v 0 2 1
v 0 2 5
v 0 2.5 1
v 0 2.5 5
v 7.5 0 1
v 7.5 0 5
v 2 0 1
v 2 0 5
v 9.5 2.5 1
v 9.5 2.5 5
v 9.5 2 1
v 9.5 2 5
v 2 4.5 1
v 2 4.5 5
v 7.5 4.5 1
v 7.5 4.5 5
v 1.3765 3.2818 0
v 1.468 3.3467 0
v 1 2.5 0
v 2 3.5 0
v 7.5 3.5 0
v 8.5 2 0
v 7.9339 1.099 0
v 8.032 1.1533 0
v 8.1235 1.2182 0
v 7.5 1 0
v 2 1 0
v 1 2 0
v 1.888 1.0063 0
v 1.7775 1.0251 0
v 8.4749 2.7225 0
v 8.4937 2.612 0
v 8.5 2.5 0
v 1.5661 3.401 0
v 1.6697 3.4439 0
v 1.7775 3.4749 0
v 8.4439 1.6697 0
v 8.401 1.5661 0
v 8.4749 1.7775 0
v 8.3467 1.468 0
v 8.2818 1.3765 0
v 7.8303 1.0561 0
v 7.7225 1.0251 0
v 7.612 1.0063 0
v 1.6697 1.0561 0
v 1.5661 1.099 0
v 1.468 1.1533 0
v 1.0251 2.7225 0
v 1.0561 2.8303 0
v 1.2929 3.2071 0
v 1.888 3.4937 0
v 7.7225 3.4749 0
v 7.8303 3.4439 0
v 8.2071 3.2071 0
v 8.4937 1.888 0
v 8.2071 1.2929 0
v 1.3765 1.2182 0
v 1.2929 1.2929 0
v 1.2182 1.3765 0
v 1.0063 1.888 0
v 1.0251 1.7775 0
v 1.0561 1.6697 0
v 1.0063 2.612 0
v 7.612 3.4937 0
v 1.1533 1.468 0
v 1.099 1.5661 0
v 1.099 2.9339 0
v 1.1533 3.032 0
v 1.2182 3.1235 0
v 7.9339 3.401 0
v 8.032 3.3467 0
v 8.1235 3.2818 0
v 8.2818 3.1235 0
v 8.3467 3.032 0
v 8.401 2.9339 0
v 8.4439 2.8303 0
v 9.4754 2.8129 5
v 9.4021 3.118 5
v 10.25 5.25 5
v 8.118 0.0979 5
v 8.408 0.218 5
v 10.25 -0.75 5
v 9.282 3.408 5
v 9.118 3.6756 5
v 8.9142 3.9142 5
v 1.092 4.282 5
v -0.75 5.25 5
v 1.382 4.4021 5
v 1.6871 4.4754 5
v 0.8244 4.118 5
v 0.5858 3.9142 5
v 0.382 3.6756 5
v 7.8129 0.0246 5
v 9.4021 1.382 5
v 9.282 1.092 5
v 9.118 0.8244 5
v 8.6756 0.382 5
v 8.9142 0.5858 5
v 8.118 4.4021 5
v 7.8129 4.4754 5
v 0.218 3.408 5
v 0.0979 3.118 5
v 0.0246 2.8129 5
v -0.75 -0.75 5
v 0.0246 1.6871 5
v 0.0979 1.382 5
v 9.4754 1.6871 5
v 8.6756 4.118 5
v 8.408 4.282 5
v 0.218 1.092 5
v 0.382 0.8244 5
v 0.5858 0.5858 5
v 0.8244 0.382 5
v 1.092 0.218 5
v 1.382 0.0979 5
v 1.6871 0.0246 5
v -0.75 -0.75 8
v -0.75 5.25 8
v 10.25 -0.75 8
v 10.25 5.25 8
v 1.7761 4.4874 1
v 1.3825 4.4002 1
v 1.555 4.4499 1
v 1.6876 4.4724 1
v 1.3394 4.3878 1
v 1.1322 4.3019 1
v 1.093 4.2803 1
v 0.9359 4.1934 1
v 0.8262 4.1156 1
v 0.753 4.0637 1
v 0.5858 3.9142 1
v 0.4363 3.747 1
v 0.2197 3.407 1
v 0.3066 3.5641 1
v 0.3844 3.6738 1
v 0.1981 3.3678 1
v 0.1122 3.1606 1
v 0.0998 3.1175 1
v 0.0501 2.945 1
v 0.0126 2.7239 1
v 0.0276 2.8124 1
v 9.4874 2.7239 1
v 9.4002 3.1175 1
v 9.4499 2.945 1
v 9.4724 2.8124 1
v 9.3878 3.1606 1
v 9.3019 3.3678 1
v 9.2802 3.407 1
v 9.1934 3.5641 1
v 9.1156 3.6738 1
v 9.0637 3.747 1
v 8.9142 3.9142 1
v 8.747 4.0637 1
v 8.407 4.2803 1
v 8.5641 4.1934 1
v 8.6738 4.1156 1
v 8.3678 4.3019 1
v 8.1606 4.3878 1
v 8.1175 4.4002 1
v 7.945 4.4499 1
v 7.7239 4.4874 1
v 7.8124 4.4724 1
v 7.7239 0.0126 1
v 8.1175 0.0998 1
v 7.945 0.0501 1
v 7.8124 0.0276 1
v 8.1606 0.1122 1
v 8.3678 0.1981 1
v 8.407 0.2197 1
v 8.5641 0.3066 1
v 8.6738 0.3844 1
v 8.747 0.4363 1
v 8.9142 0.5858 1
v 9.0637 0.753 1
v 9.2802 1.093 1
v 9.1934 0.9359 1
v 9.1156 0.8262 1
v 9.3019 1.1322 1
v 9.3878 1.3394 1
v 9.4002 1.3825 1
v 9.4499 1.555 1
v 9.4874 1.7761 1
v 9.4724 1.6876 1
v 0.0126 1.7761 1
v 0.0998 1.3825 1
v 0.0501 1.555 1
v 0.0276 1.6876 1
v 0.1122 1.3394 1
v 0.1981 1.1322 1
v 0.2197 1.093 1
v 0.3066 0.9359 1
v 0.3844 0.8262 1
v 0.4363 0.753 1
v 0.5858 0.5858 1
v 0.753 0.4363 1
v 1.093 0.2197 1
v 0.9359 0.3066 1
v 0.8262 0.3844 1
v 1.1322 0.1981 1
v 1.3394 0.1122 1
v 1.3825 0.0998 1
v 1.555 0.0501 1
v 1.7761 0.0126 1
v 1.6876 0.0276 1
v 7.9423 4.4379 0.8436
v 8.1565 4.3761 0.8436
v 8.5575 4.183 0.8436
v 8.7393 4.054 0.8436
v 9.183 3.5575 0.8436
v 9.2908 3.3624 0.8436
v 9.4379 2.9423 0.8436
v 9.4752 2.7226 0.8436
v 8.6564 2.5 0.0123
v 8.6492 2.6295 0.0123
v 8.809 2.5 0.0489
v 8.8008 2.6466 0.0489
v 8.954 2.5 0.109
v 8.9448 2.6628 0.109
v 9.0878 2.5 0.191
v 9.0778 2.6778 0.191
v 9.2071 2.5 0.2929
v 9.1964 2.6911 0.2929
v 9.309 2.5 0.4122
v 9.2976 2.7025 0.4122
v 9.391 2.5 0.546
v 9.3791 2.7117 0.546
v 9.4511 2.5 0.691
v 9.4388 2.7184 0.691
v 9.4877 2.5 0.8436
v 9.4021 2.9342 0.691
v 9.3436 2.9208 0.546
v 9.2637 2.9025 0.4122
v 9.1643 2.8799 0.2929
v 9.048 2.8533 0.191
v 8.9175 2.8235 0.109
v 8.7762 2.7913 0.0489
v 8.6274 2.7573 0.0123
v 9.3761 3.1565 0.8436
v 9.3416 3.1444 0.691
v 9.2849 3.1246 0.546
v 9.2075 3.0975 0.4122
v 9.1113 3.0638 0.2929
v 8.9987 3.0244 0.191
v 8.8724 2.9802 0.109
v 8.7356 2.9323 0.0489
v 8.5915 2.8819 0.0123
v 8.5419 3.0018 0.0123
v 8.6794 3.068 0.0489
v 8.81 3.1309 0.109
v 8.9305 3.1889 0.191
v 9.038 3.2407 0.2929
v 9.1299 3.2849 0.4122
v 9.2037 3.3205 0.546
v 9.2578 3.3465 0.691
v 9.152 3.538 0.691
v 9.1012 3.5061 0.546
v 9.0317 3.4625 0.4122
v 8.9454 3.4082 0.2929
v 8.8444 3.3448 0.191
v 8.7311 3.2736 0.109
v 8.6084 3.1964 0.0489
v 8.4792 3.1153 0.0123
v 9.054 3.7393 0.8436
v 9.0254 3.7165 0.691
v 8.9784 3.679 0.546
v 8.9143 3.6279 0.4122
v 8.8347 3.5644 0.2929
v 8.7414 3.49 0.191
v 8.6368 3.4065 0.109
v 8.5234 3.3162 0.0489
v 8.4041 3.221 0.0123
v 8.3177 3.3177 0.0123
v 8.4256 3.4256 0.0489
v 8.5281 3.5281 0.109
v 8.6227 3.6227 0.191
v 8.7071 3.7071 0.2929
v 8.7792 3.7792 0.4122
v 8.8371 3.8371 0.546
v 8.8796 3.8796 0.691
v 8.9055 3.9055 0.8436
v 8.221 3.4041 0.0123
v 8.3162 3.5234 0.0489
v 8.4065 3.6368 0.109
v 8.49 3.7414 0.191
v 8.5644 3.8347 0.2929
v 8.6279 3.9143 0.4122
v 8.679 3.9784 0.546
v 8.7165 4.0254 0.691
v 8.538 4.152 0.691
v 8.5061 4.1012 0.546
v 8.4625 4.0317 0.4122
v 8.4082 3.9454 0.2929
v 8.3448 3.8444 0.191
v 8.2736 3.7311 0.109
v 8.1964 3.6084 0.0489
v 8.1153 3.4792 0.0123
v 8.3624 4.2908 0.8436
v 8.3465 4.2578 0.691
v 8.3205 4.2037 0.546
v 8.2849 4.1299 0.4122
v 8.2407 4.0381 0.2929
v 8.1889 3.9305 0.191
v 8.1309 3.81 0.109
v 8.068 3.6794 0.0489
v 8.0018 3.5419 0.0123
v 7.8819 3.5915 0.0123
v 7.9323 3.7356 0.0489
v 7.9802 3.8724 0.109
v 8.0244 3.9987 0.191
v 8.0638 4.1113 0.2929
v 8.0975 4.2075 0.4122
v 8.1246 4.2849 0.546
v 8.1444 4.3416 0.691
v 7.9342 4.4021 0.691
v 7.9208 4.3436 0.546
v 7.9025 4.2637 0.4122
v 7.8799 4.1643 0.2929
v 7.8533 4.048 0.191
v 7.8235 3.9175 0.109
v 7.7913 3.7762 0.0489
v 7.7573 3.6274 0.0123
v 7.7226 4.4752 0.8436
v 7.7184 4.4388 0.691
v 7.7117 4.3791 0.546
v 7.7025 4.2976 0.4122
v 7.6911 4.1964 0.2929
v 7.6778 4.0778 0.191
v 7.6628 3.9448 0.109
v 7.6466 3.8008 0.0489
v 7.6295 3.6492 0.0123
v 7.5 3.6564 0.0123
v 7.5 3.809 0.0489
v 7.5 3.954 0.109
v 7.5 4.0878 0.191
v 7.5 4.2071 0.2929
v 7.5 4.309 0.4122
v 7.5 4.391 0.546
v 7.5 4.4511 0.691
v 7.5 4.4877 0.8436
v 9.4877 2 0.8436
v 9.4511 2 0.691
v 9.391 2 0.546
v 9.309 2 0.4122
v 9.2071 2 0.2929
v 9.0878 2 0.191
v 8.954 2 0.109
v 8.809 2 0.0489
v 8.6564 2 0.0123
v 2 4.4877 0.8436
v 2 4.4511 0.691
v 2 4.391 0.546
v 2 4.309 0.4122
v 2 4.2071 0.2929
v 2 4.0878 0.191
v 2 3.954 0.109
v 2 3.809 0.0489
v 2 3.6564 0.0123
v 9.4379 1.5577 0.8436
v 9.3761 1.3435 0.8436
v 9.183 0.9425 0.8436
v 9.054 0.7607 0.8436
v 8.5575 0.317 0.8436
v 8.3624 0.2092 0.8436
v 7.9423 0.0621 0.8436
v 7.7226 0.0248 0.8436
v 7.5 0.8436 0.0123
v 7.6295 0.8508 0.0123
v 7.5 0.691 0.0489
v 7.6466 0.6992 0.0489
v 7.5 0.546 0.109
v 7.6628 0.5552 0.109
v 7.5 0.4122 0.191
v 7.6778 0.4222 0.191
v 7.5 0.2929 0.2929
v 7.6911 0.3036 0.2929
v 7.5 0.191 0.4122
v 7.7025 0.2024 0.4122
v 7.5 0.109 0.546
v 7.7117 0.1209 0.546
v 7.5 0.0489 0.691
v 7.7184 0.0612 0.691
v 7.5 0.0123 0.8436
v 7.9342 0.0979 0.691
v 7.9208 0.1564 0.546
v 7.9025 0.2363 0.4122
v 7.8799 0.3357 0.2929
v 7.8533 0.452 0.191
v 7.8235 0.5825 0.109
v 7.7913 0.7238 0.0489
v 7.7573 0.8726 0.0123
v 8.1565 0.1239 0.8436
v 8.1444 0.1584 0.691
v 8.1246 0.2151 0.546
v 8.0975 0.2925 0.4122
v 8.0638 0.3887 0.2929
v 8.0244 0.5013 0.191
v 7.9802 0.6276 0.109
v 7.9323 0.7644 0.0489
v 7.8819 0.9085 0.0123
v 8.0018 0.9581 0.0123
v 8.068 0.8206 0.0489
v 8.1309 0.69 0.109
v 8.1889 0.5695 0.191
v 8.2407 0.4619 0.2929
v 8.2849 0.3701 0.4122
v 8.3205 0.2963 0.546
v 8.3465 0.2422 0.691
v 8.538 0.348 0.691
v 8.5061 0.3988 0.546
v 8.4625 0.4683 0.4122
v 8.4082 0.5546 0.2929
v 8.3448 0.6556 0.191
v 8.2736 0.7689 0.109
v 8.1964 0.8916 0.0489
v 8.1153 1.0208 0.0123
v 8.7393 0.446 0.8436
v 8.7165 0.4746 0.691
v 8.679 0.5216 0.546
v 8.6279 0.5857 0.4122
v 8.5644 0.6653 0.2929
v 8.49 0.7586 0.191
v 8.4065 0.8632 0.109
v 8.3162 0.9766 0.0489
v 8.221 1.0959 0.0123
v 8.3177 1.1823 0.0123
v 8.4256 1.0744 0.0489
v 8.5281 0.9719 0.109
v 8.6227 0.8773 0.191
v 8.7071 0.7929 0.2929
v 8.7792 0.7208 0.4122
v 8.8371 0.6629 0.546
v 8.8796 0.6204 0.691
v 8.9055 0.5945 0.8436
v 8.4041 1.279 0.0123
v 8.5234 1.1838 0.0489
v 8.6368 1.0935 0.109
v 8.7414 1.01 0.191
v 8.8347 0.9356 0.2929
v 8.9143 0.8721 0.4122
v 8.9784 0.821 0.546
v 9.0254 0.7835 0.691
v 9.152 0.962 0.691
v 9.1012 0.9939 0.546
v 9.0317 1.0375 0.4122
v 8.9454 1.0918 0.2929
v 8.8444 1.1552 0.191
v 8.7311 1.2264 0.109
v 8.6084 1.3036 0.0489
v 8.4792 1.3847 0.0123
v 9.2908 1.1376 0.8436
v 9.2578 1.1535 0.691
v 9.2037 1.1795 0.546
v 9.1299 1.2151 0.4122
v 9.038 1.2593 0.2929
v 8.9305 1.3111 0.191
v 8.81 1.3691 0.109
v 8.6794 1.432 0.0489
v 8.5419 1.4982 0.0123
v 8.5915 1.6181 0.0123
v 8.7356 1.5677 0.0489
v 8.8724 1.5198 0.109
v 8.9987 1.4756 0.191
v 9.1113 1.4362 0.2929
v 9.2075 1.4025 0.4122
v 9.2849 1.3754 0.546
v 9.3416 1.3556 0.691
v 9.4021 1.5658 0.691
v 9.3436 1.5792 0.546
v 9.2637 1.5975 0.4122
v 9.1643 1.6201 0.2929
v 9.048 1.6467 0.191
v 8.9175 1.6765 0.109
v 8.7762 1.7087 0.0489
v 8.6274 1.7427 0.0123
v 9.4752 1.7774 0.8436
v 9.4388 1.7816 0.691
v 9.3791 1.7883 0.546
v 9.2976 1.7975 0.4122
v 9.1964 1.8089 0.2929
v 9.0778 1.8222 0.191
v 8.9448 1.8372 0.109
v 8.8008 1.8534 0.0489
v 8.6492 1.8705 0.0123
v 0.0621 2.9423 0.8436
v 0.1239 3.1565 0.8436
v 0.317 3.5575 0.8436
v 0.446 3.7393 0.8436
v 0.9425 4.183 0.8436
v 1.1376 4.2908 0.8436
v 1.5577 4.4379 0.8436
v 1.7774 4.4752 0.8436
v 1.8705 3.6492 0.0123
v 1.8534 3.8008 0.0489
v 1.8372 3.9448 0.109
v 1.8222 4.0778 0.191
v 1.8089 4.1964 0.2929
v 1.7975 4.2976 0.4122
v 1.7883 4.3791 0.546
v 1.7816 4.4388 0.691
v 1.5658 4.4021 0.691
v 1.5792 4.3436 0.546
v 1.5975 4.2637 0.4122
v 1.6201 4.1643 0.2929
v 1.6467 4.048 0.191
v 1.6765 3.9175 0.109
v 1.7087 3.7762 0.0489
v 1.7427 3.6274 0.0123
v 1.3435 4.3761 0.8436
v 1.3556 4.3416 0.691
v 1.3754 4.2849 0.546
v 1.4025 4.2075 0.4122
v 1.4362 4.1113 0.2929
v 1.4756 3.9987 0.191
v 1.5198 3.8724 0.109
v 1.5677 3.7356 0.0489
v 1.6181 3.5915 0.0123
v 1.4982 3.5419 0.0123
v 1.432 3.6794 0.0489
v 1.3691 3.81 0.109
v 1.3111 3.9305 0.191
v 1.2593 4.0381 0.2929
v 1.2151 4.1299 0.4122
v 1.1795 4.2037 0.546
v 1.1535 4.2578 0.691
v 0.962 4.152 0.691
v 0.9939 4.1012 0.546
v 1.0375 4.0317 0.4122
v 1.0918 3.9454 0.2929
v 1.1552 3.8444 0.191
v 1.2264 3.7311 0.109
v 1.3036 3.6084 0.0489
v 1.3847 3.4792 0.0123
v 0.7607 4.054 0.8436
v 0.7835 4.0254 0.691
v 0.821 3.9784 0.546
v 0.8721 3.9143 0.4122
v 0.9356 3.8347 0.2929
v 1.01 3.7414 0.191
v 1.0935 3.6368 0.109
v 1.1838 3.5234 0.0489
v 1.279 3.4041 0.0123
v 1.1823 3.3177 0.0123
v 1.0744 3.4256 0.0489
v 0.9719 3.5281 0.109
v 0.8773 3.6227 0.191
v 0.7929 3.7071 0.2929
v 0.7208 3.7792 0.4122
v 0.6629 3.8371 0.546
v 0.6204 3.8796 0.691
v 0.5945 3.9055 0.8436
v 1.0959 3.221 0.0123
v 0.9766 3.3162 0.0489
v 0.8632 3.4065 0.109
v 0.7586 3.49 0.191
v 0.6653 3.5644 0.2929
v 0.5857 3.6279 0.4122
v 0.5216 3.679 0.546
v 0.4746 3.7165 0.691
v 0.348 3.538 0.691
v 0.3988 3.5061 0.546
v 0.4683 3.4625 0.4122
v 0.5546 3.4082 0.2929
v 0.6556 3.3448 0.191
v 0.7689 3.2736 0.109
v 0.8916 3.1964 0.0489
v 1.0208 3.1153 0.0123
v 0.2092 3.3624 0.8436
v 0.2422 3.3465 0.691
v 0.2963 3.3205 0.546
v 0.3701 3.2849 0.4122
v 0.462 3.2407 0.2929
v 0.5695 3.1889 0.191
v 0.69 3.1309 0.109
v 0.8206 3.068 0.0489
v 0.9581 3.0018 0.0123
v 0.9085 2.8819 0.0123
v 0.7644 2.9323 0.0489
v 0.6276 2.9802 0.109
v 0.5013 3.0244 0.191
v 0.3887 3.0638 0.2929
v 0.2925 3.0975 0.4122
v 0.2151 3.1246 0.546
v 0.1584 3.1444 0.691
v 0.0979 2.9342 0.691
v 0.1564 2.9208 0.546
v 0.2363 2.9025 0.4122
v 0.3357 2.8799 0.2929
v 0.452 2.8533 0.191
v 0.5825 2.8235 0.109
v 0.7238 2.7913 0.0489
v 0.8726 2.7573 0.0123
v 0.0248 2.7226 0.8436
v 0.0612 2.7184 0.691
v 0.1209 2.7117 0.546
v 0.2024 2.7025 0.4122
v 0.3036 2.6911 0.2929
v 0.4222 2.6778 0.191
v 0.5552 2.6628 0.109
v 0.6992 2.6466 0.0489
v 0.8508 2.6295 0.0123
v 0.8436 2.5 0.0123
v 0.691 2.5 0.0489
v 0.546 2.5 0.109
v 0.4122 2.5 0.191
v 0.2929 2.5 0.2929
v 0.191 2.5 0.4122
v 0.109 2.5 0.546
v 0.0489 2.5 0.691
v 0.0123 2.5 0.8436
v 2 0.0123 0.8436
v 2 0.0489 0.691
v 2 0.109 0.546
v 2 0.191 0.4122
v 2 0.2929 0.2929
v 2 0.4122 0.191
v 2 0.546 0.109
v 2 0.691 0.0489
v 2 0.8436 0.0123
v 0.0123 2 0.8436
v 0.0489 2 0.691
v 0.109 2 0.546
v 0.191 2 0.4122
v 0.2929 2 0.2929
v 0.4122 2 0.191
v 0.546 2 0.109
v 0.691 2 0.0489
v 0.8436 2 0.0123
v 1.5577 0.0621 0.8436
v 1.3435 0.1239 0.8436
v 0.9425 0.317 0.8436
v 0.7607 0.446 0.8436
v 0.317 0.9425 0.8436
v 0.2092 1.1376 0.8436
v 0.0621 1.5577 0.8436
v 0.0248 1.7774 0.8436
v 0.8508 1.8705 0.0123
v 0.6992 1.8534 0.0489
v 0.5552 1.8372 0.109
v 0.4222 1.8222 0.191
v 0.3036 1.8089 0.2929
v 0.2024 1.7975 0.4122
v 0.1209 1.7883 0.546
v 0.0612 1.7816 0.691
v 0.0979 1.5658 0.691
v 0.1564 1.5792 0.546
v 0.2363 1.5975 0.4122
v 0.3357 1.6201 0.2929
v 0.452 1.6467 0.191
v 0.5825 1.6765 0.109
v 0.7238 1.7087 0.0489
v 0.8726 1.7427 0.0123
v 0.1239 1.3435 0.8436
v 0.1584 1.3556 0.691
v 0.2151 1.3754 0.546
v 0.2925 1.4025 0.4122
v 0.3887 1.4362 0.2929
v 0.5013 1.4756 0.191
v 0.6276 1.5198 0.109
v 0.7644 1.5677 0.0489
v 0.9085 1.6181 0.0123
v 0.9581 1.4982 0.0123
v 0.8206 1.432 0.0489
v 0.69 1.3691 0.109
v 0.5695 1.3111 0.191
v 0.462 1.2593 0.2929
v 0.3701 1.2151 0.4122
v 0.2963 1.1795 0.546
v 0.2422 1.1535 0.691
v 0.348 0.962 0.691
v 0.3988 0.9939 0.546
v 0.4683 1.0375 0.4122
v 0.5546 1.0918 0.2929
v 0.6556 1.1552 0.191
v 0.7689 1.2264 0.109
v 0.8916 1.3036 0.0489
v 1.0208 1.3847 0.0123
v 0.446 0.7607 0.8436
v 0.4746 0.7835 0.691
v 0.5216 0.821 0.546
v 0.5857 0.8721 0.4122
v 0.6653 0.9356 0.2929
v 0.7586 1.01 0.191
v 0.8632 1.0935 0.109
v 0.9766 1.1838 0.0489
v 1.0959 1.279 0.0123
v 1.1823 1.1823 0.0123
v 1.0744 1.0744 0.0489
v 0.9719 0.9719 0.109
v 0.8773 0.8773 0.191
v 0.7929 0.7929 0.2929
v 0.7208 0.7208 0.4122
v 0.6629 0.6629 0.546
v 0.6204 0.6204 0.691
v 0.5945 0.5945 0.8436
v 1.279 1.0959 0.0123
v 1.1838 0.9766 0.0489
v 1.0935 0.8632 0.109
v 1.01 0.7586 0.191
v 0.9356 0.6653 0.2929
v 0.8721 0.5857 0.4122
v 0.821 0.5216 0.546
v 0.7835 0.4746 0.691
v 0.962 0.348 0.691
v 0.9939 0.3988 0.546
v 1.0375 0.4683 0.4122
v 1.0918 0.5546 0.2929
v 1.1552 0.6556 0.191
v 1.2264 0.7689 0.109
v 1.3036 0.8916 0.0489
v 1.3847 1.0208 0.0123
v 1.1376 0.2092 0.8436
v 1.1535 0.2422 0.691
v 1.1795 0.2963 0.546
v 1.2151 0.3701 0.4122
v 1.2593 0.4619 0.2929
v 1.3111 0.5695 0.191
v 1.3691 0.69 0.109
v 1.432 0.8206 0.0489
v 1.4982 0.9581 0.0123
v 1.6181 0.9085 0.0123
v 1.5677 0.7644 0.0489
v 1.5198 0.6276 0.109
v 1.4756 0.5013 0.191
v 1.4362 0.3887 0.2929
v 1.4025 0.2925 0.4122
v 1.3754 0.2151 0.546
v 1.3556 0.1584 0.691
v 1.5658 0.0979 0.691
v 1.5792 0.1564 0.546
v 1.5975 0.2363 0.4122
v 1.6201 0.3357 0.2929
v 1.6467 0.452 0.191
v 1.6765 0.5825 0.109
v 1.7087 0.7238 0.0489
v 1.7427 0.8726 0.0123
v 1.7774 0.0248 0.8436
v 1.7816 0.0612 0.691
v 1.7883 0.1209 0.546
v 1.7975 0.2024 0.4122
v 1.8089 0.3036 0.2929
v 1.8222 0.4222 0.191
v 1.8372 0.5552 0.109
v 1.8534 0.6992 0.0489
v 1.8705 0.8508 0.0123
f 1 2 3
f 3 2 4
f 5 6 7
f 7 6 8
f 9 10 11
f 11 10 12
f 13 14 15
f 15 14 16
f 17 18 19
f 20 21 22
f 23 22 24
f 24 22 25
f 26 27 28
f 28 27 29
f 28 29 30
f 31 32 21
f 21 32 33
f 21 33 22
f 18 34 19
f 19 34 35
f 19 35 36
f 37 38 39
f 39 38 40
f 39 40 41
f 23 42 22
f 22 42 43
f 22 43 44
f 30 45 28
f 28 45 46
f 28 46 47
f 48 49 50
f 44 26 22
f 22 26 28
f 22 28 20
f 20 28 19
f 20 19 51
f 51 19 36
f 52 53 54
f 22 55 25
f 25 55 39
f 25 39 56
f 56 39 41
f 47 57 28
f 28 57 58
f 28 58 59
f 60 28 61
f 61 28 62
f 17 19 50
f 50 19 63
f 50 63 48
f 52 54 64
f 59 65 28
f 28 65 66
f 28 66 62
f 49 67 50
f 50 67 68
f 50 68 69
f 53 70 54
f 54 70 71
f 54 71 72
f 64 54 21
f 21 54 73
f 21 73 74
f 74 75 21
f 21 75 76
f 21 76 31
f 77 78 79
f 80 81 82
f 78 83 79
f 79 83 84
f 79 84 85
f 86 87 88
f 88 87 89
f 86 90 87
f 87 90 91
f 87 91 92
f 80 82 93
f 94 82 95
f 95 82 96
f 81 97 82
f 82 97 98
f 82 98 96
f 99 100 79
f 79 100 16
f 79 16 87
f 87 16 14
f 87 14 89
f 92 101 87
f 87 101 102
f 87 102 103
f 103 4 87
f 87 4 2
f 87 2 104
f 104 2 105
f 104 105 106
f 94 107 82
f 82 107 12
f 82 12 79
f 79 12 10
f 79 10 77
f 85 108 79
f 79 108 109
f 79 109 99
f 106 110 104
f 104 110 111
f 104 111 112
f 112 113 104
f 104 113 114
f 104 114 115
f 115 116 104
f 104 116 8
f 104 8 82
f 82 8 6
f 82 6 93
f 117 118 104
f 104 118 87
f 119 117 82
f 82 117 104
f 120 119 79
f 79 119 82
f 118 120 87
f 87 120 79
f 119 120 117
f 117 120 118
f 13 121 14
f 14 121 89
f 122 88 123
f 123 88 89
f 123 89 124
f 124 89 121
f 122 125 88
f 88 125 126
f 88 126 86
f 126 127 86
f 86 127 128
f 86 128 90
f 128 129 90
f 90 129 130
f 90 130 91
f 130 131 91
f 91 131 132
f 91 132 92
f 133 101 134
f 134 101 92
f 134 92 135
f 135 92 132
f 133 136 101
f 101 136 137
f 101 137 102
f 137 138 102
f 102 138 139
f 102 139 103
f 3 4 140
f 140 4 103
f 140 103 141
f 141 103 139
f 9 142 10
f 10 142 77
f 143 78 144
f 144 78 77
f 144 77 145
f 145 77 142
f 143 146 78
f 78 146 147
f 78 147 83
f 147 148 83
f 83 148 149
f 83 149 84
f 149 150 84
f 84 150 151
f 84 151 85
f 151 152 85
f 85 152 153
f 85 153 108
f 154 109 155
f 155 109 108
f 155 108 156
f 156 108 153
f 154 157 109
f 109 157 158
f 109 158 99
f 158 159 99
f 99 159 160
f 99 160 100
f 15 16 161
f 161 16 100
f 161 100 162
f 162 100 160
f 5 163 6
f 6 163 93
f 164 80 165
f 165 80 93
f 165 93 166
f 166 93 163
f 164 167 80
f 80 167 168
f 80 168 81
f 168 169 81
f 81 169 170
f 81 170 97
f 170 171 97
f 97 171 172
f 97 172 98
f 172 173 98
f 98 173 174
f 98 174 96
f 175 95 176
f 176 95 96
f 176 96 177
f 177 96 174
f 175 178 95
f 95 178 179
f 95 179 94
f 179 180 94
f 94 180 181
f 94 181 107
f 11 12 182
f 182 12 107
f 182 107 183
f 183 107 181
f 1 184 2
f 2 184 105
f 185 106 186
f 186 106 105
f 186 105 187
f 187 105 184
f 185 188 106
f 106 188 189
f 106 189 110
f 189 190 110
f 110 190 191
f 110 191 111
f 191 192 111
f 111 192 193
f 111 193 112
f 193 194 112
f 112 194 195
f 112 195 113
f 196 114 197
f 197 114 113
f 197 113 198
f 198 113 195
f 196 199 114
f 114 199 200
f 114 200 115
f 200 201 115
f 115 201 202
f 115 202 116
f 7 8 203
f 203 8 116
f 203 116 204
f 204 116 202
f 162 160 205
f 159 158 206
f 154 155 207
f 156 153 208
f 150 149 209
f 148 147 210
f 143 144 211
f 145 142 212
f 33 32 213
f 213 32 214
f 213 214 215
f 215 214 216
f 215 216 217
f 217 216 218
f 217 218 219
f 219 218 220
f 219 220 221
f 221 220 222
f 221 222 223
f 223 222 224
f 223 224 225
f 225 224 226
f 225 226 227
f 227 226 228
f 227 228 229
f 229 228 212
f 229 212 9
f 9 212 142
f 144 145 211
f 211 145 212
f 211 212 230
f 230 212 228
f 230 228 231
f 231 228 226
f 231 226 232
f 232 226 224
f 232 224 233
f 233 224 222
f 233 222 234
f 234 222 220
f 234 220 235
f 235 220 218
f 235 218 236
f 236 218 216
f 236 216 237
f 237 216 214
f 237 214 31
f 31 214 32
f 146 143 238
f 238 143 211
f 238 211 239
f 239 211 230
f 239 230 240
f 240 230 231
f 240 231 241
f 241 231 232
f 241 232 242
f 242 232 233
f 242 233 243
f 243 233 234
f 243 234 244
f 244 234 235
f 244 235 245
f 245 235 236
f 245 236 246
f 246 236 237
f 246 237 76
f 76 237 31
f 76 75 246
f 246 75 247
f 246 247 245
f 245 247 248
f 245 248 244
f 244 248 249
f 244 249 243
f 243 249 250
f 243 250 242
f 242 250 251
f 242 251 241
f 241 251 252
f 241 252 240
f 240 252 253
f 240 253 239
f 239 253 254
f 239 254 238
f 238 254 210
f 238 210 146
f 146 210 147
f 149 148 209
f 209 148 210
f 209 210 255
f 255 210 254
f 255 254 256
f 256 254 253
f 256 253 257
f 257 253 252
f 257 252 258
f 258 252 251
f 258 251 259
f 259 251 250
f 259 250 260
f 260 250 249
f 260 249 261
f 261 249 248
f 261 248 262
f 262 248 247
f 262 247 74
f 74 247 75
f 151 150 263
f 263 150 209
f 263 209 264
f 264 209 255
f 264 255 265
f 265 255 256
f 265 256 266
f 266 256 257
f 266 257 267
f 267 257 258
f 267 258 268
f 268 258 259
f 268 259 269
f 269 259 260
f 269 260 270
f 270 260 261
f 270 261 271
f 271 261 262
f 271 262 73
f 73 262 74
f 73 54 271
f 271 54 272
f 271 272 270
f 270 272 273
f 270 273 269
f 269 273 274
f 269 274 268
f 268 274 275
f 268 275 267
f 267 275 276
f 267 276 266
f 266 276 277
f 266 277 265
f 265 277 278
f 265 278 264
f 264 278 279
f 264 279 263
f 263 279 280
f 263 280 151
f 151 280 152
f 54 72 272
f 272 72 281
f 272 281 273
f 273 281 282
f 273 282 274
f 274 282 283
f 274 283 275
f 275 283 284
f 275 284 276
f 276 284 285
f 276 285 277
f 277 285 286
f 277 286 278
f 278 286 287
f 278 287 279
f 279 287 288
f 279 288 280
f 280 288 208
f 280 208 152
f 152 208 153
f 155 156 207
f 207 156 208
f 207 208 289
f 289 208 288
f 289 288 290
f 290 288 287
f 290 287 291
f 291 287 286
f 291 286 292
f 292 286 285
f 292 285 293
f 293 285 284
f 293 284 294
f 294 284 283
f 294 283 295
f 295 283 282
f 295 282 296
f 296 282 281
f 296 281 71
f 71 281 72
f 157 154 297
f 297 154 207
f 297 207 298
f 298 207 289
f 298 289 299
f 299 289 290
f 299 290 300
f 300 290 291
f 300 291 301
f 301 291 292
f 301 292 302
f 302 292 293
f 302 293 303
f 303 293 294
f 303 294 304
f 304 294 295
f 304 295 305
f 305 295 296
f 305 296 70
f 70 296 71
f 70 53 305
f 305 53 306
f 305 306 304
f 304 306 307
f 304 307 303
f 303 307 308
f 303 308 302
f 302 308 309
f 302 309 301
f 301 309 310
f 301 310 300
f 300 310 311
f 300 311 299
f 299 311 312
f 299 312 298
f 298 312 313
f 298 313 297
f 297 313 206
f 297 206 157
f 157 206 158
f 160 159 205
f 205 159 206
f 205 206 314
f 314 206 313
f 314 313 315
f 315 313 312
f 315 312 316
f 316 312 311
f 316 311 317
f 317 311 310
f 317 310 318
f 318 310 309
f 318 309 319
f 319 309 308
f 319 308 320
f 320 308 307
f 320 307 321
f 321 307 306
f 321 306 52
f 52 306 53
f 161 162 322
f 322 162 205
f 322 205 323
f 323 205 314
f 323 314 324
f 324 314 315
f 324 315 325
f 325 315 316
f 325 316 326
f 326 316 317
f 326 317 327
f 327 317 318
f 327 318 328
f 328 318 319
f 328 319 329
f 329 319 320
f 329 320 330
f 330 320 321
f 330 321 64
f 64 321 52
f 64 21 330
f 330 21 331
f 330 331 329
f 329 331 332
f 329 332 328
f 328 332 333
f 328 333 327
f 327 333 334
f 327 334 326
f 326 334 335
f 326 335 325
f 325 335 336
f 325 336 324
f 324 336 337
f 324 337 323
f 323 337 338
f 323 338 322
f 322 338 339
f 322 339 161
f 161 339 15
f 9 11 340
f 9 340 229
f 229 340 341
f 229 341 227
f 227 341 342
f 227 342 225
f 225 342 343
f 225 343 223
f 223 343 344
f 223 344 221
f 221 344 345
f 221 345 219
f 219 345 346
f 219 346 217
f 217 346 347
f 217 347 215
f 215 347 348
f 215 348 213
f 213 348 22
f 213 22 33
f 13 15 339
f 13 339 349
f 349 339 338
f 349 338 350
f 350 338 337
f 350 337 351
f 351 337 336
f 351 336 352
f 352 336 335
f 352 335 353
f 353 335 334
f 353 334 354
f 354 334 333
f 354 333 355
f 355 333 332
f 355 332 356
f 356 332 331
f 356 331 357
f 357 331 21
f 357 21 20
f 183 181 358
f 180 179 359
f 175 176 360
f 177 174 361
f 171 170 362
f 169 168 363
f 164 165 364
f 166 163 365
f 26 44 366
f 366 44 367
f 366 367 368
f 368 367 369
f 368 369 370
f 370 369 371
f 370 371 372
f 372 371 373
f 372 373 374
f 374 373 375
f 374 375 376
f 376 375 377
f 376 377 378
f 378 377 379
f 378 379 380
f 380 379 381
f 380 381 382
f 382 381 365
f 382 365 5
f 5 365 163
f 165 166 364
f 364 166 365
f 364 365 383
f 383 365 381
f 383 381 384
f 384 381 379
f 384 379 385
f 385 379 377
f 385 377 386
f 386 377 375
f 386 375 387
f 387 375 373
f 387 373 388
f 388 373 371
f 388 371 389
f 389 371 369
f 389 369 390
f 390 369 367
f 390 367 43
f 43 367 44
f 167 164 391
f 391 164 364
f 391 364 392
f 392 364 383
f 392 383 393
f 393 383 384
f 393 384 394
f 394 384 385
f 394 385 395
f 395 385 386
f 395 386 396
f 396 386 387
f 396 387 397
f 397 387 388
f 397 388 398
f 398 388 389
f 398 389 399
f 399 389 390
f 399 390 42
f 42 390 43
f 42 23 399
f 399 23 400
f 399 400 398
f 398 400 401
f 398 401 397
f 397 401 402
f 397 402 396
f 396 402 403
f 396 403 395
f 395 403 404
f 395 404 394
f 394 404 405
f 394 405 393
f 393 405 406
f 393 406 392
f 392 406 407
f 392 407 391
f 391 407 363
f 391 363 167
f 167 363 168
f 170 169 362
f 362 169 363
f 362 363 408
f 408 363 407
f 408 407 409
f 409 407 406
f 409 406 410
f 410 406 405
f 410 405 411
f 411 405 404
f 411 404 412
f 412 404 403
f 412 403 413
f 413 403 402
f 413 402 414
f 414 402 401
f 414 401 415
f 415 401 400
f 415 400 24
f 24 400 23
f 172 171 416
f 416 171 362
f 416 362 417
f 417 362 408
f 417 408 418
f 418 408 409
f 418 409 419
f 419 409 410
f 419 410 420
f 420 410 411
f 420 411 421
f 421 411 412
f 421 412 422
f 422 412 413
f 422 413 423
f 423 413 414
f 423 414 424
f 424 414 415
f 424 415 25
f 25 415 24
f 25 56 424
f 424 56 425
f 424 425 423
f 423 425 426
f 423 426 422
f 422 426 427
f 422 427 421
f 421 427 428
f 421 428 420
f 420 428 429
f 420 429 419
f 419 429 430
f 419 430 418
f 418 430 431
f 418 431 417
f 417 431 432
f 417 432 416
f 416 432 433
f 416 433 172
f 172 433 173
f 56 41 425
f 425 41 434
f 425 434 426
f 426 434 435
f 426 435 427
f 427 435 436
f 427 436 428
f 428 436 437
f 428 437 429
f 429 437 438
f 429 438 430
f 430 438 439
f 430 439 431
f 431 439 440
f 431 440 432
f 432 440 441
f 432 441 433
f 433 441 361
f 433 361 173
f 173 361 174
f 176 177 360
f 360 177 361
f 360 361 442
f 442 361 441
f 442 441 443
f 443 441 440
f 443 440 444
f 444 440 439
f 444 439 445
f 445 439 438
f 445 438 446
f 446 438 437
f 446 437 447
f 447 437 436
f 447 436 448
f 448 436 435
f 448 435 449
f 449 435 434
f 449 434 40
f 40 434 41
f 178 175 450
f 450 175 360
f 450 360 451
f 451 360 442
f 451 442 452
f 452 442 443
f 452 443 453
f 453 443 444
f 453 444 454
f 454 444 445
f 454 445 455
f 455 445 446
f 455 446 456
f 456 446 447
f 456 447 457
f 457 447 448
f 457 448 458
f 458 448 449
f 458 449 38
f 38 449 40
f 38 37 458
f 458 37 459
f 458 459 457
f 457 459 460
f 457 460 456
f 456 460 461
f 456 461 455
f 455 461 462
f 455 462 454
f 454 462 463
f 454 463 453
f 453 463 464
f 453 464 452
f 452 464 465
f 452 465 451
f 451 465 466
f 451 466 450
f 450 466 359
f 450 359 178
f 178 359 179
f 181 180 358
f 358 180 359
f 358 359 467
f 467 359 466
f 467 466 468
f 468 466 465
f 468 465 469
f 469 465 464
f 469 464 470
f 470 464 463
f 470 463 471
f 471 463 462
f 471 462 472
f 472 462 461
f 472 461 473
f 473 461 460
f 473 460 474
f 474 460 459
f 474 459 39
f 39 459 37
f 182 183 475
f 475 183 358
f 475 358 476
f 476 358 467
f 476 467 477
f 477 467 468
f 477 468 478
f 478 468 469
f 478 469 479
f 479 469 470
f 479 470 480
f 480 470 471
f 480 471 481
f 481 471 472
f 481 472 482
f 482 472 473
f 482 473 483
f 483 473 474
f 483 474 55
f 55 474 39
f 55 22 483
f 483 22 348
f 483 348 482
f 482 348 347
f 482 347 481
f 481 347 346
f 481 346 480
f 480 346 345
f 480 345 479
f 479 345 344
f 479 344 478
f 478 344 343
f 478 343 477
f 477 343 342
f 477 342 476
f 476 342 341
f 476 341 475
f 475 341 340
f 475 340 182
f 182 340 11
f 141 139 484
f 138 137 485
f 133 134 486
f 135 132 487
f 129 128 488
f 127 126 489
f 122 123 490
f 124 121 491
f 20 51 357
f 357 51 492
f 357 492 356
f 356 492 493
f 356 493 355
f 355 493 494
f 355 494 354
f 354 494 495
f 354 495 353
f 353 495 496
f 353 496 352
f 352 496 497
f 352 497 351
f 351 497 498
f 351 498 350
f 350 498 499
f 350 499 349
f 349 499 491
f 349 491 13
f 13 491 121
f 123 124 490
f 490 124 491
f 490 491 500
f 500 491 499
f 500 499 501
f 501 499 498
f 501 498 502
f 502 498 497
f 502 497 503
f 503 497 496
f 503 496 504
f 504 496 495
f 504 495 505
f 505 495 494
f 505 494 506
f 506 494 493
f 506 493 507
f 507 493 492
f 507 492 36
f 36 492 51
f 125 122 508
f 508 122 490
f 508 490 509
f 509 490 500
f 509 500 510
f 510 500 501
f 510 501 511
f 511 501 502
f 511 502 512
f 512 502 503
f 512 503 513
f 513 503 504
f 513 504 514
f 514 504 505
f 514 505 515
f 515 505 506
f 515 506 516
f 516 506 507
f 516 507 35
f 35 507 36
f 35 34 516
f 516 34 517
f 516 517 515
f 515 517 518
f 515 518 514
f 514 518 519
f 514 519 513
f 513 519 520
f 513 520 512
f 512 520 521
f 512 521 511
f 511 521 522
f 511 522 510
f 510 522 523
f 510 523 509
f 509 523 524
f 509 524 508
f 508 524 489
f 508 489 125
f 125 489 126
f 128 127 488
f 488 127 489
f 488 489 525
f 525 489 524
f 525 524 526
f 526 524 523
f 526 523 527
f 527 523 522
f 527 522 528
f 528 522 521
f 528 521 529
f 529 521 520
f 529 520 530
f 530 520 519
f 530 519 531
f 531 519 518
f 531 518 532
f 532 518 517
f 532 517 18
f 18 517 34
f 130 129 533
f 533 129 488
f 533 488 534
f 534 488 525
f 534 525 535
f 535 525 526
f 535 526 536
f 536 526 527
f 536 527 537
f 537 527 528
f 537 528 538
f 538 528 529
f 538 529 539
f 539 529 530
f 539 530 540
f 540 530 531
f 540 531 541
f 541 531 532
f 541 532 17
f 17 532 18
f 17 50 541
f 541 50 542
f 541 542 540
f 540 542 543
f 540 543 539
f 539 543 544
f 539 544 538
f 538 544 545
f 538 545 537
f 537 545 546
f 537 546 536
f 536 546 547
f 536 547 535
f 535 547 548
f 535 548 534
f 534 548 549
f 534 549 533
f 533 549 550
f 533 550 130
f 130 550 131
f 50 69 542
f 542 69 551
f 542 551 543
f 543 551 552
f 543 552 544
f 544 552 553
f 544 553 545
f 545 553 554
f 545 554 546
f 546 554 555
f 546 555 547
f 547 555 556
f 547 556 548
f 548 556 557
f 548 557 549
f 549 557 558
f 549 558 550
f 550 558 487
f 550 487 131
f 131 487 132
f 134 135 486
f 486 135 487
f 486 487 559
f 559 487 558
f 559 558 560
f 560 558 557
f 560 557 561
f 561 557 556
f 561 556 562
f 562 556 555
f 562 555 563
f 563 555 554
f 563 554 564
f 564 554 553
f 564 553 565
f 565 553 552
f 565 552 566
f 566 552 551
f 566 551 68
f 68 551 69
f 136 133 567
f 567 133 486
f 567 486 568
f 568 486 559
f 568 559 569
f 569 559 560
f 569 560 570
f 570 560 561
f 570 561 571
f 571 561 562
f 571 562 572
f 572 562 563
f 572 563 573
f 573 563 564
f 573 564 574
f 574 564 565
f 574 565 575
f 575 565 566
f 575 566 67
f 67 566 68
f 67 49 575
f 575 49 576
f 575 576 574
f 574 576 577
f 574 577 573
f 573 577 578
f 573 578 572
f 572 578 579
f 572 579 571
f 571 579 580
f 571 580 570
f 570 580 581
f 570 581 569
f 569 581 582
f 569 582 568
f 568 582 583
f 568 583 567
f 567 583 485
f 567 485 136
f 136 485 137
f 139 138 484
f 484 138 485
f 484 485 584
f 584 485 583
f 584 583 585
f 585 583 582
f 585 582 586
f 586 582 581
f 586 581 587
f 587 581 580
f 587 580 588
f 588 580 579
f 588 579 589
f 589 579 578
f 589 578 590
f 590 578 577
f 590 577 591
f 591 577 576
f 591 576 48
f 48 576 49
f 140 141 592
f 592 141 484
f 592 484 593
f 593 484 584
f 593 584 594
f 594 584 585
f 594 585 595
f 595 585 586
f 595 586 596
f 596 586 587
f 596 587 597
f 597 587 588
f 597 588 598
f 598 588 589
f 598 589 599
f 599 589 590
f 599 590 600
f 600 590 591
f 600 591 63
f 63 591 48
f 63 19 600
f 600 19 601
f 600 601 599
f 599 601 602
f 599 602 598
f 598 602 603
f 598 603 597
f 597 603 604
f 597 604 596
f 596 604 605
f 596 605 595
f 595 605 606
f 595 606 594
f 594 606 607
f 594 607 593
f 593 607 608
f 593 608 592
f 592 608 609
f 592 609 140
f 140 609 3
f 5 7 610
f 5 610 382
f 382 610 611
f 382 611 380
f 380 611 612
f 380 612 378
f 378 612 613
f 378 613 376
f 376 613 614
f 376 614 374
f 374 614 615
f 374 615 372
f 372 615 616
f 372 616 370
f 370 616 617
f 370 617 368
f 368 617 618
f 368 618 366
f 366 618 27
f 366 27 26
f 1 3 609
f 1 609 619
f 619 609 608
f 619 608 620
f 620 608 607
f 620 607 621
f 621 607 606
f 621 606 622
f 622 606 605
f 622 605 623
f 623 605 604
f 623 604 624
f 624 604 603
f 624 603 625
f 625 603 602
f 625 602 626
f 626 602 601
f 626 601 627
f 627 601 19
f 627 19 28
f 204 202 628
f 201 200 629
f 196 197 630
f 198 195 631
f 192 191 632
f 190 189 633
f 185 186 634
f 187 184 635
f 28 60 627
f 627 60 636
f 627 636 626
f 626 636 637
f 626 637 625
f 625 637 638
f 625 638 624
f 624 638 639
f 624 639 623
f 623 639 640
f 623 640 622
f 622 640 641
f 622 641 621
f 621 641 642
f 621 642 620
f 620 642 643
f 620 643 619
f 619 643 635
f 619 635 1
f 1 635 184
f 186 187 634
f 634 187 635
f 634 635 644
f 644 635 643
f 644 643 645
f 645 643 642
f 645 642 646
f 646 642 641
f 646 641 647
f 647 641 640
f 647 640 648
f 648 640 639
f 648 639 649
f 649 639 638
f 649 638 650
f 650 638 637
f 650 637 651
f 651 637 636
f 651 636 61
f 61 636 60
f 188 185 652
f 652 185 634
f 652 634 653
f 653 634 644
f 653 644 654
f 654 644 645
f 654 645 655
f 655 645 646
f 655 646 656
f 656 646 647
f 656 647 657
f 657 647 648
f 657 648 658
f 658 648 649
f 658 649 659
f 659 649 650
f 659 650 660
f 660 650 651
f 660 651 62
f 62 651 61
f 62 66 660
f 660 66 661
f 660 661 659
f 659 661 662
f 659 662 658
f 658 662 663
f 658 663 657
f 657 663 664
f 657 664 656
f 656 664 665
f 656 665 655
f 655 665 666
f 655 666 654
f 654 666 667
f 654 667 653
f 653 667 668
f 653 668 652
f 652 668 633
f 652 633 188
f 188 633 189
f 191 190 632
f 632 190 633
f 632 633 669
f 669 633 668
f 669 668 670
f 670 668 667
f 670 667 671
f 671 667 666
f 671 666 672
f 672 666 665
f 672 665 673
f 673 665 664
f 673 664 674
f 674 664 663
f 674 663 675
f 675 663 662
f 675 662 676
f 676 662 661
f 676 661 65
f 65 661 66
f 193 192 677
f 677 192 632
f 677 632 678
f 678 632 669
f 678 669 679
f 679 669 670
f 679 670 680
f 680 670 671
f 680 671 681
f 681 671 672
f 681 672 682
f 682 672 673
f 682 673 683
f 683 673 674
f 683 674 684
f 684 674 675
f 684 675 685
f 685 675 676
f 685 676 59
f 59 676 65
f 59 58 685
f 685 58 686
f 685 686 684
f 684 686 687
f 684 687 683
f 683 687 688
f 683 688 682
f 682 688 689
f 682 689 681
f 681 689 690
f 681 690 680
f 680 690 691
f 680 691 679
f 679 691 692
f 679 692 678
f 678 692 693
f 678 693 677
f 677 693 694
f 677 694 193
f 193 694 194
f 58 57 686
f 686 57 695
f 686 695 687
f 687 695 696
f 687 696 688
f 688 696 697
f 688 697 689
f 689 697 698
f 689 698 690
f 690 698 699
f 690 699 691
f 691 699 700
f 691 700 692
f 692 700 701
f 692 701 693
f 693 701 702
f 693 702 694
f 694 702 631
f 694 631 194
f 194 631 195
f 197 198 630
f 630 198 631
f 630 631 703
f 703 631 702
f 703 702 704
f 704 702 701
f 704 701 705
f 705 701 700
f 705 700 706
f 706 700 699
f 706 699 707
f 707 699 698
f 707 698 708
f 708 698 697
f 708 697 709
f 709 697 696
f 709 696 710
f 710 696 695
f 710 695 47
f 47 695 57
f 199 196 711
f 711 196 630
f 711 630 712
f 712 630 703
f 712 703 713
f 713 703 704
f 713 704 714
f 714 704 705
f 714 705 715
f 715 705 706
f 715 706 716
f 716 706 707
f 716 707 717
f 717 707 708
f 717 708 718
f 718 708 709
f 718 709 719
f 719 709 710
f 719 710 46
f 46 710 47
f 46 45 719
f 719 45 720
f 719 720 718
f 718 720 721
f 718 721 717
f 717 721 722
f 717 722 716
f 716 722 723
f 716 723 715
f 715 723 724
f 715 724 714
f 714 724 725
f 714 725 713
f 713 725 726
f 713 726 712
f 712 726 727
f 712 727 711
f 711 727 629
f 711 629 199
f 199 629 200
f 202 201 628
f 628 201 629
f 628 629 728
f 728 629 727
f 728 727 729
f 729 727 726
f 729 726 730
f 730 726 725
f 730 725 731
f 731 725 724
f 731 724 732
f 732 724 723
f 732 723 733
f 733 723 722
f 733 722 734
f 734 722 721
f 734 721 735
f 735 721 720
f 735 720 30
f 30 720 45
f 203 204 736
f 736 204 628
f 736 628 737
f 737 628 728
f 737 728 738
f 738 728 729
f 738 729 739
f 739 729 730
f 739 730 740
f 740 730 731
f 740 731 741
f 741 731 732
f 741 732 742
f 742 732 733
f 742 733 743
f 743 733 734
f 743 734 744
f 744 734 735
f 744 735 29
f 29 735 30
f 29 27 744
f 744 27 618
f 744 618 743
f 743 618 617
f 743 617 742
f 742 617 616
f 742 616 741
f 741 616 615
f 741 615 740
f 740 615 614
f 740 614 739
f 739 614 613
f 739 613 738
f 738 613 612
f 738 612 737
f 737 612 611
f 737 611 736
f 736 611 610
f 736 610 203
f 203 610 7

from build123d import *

# Parameters (mm, degrees)
SKETCH1_W           = 9.5
SKETCH1_H           = 4.5
BOSS_EXTRUDE1_DEPTH = 5
SKETCH2_W           = 11
SKETCH2_H           = 6
BOSS_EXTRUDE2_DEPTH = 3
FILLET1_R           = 2
FILLET2_R           = 1


with BuildPart() as part:
    # Sketch1 → Boss-Extrude1 (new body)
    with BuildSketch(Plane.XY):
        with Locations((4.75, 2.25)):
            Rectangle(SKETCH1_W, SKETCH1_H)
    extrude(amount=BOSS_EXTRUDE1_DEPTH)

    # Sketch2 → Boss-Extrude2 (add)
    with BuildSketch(Plane.XY.offset(5)):
        with Locations((4.75, 2.25)):
            Rectangle(SKETCH2_W, SKETCH2_H)
    extrude(amount=BOSS_EXTRUDE2_DEPTH)

    # Fillet1
    fillet1_edges = [part.edges().sort_by_distance(p)[0] for p in [
        (0, 4.5, 2.5),
        (9.5, 4.5, 2.5),
        (9.5, 0, 2.5),
        (0, 0, 2.5),
    ]]
    fillet(fillet1_edges, radius=FILLET1_R)

    # Fillet2
    fillet2_edges = [part.edges().sort_by_distance(p)[0] for p in [
        (0, 2.25, 0),
        (4.75, 4.5, 0),
        (9.5, 2.25, 0),
        (4.75, 0, 0),
        (0.585786438, 0.585786438, 0),
        (8.914213562, 0.585786438, 0),
        (8.914213562, 3.914213562, 0),
        (0.585786438, 3.914213562, 0),
    ]]
    fillet(fillet2_edges, radius=FILLET2_R)


solid = part.part
